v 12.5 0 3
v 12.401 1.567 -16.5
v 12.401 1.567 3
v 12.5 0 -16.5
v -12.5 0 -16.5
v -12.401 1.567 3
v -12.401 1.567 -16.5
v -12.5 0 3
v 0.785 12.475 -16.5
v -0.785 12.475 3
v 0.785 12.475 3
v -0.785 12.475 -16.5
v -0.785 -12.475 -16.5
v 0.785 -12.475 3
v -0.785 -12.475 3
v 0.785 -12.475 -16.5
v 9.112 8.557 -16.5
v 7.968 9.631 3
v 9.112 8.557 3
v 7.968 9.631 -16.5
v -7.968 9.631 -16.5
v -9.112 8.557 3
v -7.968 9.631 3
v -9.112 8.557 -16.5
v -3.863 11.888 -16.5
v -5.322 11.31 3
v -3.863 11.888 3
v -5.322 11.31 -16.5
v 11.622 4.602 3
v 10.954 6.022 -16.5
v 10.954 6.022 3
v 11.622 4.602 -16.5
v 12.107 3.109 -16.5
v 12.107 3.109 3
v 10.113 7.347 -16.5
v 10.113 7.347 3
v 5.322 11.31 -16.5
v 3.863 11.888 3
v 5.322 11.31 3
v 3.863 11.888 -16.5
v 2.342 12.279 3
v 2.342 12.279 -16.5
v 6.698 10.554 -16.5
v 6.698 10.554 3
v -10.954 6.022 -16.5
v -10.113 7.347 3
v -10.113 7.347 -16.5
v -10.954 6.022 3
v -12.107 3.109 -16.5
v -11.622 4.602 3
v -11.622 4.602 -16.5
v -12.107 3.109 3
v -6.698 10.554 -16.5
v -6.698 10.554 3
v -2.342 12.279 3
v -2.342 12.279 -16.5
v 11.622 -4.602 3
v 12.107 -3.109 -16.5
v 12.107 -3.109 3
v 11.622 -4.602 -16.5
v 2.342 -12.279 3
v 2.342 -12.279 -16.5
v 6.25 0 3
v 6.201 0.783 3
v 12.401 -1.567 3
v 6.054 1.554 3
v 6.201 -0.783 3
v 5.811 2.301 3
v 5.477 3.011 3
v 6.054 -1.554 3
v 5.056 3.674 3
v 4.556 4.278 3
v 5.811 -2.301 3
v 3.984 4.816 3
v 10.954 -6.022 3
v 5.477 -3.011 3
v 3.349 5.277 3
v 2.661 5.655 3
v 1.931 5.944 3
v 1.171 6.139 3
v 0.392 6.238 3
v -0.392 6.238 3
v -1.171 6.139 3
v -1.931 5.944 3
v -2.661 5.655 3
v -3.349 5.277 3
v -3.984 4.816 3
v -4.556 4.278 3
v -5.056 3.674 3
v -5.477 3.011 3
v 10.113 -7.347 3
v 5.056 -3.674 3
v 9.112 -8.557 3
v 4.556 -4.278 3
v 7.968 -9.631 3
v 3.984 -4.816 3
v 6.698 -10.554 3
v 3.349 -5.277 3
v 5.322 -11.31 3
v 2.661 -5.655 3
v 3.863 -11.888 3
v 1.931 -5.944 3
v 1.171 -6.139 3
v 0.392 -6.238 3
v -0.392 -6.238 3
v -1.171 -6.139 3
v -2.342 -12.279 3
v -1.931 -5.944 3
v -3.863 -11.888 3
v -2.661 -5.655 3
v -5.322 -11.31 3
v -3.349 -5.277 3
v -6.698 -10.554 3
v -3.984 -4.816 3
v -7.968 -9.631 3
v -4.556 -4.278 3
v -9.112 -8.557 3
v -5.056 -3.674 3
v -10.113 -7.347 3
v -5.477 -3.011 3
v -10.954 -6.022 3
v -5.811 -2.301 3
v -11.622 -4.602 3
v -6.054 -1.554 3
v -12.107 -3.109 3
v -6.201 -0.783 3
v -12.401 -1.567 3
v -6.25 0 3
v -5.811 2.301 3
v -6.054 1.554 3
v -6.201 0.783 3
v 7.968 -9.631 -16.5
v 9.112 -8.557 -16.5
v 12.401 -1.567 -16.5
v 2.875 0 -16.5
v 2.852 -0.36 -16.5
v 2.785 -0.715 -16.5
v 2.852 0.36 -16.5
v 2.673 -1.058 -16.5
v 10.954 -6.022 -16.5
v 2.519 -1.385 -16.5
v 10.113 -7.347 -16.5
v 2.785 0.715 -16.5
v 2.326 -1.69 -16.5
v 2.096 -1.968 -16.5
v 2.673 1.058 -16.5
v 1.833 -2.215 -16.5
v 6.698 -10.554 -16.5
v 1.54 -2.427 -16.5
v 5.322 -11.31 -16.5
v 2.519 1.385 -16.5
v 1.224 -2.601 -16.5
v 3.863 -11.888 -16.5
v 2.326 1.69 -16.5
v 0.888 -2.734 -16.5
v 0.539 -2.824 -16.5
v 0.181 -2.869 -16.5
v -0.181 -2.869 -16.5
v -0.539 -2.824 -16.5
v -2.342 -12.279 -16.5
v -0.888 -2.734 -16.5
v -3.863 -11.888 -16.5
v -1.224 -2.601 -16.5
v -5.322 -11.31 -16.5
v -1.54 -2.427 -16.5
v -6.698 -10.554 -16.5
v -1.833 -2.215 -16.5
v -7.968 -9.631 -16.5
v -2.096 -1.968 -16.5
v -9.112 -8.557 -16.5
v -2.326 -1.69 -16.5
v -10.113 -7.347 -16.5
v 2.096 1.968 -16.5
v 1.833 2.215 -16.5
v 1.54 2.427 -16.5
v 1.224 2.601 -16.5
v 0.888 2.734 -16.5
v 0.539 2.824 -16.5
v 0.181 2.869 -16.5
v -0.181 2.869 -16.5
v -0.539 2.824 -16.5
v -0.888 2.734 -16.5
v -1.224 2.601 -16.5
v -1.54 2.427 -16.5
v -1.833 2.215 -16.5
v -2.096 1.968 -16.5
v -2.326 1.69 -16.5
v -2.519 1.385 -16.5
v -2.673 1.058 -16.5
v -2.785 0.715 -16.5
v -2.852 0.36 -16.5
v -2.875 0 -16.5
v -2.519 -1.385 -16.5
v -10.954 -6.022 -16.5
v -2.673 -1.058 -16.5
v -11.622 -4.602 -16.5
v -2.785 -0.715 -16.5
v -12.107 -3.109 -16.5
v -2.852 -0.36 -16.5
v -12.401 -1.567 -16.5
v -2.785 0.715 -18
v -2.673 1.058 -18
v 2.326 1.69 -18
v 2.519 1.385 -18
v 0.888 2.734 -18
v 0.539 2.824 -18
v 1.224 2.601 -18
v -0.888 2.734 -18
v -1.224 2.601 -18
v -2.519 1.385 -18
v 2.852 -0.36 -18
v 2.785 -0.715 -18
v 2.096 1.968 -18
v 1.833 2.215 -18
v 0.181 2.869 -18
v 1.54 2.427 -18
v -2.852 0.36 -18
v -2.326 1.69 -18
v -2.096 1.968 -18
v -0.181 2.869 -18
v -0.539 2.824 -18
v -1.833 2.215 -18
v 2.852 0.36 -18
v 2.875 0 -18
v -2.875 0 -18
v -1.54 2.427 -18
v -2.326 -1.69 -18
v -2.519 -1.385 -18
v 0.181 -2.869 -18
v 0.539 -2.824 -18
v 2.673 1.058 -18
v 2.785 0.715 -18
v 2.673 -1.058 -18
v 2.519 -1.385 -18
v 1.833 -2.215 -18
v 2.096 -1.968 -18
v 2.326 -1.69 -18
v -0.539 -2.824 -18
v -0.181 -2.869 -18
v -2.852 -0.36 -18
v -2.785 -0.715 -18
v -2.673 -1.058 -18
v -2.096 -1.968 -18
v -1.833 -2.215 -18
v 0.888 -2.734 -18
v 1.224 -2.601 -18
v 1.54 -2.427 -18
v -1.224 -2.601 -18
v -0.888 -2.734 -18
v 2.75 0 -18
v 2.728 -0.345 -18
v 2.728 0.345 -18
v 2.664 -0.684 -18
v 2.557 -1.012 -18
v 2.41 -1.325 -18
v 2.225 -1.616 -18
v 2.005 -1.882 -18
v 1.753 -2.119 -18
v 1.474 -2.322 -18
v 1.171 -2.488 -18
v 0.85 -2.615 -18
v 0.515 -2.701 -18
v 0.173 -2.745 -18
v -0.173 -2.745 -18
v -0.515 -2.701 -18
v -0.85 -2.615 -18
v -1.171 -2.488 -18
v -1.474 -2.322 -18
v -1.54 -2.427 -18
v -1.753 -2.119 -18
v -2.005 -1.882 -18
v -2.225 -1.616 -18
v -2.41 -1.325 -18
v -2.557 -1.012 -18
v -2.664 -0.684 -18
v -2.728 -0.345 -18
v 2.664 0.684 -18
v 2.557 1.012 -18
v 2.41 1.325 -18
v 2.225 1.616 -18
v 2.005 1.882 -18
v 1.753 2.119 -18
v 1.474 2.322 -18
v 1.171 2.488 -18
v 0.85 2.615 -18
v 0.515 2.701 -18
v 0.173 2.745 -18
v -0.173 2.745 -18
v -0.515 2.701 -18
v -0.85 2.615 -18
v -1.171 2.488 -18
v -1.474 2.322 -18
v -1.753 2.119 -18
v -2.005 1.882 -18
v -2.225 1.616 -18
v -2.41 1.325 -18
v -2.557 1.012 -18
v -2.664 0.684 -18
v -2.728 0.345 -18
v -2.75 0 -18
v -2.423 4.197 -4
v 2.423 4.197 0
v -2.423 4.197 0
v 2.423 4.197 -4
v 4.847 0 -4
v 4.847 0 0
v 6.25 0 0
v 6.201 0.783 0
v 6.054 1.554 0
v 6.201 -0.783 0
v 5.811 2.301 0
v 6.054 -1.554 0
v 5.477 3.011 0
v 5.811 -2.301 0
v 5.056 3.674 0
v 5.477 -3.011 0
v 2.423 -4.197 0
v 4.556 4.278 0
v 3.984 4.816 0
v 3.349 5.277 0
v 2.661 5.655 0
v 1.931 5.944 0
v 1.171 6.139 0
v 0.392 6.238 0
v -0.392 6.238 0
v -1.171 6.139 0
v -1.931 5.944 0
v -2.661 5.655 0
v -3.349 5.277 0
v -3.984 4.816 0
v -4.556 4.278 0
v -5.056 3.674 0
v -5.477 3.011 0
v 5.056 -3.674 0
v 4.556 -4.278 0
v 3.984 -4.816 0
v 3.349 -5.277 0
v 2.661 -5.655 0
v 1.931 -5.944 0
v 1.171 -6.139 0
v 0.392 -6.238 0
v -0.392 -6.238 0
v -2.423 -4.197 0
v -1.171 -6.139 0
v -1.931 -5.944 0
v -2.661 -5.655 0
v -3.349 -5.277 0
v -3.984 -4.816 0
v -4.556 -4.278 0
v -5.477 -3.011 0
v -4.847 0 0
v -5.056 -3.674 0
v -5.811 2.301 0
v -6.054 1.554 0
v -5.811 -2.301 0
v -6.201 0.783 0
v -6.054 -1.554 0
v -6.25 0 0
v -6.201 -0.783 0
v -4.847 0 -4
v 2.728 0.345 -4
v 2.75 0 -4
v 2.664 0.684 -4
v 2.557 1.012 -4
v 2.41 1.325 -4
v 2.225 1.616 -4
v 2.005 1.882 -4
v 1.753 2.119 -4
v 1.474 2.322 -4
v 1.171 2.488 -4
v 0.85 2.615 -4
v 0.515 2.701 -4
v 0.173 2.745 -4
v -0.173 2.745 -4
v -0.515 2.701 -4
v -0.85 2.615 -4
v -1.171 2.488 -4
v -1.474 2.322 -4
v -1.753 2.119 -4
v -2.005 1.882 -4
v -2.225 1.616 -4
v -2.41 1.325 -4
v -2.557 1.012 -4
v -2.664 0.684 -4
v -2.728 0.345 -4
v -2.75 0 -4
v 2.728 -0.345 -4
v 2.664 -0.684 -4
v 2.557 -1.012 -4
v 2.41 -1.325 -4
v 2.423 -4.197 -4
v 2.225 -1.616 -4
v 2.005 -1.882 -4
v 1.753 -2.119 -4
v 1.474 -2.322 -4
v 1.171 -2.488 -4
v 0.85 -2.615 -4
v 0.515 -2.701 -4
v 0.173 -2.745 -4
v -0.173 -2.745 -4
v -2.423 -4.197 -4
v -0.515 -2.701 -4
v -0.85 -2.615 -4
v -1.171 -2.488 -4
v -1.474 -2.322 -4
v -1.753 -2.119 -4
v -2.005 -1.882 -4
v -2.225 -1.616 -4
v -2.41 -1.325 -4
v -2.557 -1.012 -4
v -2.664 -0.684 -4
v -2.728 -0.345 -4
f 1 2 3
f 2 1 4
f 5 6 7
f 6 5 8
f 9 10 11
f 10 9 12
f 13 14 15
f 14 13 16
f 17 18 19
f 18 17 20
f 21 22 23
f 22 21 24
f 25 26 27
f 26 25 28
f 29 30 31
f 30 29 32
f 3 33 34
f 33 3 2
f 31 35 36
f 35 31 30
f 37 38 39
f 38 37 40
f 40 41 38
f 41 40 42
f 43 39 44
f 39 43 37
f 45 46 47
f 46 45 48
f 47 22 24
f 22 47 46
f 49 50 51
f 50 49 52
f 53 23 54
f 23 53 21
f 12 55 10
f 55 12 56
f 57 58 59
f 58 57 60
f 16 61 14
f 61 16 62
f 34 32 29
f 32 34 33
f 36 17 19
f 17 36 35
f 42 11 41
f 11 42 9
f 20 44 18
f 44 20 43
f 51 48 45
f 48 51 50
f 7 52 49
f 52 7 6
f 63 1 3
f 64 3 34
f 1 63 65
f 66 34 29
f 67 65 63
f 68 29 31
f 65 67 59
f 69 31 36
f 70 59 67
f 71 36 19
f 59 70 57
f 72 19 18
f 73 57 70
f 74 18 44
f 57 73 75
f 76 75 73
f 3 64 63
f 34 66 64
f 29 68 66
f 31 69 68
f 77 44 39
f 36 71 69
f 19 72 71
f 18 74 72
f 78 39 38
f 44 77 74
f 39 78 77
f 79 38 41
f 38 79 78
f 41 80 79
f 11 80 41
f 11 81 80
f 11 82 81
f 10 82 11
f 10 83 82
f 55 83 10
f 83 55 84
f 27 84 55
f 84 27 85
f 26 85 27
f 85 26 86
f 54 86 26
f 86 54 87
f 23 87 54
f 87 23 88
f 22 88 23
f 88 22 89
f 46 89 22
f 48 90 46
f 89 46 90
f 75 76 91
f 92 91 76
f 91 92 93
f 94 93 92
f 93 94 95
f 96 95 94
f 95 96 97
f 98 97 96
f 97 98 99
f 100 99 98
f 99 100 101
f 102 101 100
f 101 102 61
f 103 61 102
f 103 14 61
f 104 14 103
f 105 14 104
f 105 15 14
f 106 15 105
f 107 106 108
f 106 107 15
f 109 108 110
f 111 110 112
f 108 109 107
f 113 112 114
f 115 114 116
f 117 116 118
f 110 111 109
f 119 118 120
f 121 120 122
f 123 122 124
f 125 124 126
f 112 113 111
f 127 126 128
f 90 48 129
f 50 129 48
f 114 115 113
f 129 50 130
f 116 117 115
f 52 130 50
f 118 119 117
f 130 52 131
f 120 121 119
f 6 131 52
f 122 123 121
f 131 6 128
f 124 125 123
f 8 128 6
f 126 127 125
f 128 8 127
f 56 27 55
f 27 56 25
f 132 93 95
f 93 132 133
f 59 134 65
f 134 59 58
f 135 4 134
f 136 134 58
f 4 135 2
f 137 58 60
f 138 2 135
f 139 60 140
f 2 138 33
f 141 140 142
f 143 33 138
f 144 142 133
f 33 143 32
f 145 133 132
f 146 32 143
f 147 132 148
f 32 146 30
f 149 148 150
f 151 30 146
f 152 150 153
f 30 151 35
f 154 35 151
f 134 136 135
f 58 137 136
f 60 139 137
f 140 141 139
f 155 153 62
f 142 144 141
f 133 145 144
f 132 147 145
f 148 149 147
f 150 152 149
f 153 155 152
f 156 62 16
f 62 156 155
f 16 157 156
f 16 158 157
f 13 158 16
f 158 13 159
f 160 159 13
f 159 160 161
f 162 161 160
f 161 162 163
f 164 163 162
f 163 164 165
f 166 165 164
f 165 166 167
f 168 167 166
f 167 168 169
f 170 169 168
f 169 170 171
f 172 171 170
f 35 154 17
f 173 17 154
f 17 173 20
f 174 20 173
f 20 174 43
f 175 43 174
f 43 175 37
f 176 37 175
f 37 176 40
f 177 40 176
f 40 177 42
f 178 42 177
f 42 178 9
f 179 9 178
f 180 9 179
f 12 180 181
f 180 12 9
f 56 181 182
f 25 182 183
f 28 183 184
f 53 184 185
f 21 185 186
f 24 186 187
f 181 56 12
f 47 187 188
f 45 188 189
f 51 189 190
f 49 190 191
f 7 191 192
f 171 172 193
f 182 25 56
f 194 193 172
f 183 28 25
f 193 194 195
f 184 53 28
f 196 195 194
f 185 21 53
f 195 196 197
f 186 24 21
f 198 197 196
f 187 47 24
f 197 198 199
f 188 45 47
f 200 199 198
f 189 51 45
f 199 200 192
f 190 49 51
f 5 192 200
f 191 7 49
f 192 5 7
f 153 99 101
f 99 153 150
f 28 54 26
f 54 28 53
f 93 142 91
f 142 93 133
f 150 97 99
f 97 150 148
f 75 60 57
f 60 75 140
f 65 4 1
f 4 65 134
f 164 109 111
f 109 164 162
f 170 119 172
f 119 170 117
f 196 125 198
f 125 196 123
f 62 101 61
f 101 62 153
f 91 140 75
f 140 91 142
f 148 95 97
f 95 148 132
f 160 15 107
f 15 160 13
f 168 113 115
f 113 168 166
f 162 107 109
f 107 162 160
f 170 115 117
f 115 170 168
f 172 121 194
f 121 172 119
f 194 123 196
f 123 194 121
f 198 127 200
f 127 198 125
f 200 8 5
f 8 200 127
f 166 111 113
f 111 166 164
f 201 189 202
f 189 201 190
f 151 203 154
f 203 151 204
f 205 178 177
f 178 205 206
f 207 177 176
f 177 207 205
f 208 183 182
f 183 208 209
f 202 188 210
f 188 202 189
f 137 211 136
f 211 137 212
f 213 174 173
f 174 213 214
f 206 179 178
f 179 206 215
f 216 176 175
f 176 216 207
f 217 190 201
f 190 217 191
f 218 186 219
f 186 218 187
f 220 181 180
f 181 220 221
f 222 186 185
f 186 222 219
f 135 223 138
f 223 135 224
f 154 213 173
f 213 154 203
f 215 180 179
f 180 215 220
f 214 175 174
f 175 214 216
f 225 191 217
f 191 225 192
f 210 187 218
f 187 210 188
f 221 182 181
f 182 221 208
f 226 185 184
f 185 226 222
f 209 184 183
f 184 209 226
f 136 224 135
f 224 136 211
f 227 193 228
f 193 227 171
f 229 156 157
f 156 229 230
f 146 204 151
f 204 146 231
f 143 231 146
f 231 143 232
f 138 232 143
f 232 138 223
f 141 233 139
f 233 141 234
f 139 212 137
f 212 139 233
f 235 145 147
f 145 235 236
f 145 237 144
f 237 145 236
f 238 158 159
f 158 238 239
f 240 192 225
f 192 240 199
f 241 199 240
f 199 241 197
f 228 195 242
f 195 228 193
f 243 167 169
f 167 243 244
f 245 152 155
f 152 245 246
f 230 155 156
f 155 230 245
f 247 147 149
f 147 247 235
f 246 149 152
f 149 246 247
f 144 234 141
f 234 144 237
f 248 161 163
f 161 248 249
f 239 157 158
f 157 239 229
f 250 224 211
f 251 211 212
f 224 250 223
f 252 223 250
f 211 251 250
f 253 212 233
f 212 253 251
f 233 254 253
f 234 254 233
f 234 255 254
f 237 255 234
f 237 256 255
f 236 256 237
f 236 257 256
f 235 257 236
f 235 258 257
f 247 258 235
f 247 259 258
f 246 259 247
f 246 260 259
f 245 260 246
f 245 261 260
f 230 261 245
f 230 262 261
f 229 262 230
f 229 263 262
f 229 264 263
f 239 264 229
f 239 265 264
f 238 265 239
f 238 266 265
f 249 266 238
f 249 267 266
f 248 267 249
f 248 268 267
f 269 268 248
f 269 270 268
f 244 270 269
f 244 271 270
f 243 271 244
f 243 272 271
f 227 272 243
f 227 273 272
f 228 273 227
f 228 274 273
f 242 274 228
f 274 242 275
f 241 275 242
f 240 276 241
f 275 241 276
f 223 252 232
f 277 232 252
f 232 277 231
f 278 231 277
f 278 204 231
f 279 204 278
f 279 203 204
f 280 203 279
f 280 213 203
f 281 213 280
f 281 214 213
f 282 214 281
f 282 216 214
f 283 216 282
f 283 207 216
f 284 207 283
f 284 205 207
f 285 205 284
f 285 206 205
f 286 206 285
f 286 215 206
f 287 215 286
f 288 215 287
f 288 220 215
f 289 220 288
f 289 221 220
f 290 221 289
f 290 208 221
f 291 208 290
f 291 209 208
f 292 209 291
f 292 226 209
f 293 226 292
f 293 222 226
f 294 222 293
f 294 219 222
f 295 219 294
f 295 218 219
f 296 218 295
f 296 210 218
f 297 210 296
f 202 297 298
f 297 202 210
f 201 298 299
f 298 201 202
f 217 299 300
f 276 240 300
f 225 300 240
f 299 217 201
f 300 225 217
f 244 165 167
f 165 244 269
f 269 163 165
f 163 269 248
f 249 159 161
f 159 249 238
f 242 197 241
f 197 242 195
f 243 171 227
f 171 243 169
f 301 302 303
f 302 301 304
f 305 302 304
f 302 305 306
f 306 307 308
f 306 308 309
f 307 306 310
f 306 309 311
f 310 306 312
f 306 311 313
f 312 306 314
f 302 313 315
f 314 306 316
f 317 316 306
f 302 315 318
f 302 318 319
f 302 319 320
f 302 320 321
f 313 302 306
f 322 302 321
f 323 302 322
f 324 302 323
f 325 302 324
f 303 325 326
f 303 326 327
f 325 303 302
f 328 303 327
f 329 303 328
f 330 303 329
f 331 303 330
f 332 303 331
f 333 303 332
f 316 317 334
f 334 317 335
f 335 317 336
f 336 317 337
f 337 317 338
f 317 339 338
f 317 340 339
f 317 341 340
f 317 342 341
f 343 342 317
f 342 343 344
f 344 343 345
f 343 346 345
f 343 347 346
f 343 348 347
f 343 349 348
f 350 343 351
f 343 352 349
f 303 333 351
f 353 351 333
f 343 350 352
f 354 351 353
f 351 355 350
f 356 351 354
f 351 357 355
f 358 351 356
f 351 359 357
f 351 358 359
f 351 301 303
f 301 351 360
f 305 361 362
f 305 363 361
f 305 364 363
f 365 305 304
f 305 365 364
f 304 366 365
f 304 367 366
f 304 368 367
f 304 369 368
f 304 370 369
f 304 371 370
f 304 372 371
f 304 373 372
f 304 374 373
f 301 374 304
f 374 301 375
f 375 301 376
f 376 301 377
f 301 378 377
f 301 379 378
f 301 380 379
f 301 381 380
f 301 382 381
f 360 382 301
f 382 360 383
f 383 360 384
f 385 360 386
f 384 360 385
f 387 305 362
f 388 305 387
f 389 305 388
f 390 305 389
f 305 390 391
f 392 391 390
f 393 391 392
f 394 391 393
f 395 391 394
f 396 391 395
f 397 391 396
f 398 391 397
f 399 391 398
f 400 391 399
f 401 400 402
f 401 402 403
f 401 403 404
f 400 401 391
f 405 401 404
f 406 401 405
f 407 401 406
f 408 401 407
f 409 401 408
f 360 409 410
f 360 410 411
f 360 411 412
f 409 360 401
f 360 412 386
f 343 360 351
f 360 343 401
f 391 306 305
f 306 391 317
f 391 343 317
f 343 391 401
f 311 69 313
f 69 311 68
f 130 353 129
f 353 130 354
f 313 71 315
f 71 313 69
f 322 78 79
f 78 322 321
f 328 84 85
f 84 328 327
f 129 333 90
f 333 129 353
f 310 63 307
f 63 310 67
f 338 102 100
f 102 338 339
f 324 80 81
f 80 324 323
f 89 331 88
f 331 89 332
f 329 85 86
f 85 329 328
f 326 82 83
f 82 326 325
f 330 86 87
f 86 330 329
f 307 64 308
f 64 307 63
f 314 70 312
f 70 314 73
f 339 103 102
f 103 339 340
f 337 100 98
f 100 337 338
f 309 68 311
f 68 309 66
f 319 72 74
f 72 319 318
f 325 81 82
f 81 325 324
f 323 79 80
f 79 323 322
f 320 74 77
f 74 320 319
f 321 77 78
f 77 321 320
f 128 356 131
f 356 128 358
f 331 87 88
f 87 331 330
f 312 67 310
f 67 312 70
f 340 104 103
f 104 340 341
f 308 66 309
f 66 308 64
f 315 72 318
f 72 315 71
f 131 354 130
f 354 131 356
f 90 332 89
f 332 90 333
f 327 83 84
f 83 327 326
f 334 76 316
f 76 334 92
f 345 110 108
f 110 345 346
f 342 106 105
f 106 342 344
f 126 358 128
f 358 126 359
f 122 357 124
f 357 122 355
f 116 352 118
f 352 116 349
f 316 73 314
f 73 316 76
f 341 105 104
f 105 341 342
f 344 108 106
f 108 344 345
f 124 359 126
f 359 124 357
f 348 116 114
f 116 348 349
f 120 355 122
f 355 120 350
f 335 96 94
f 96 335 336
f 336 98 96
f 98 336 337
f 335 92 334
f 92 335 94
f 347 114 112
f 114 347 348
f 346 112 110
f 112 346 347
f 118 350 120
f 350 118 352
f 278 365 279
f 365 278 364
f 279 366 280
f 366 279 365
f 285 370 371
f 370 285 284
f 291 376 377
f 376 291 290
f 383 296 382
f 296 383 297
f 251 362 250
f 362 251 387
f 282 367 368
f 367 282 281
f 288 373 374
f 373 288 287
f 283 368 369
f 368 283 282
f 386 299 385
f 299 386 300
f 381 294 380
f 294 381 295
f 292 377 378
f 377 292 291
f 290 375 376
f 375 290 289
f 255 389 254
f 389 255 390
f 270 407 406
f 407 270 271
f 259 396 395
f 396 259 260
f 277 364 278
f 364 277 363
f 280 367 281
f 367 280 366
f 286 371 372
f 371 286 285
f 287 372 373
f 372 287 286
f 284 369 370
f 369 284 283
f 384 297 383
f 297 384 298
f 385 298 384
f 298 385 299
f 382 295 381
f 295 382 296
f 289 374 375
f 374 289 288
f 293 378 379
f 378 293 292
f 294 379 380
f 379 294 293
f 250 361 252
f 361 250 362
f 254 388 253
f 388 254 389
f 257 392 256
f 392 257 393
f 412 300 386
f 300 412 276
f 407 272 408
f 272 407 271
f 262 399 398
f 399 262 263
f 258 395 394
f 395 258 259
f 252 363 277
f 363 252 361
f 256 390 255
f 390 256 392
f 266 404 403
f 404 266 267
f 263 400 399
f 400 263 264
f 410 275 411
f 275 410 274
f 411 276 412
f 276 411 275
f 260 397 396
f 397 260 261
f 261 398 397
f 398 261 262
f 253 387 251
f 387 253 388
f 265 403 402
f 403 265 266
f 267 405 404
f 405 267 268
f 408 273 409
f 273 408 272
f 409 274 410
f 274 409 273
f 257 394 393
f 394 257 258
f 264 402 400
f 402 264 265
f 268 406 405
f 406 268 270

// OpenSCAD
$fn = 50;


difference() {
	union() {
		translate(v = [0, 0, -16.5000000000]) {
			cylinder(h = 19.5000000000, r = 12.5000000000);
		}
		#translate(v = [0, 0, -18.0000000000]) {
			cylinder(h = 18, r = 2.8750000000);
		}
	}
	union() {
		translate(v = [0, 0, 0]) {
			rotate(a = [0, 0, 0]) {
				difference() {
					union() {
						translate(v = [0, 0, -4]) {
							linear_extrude(height = 4) {
								polygon(points = [[4.8468000000, 0.0000000000], [2.4234000000, 4.1974519271], [-2.4234000000, 4.1974519271], [-4.8468000000, 0.0000000000], [-2.4234000000, -4.1974519271], [2.4234000000, -4.1974519271]]);
							}
						}
					}
					union();
				}
			}
		}
		#cylinder(h = 3, r = 6.2500000000);
		#translate(v = [0, 0, -100.0000000000]) {
			cylinder(h = 200, r = 2.7500000000);
		}
	}
}
